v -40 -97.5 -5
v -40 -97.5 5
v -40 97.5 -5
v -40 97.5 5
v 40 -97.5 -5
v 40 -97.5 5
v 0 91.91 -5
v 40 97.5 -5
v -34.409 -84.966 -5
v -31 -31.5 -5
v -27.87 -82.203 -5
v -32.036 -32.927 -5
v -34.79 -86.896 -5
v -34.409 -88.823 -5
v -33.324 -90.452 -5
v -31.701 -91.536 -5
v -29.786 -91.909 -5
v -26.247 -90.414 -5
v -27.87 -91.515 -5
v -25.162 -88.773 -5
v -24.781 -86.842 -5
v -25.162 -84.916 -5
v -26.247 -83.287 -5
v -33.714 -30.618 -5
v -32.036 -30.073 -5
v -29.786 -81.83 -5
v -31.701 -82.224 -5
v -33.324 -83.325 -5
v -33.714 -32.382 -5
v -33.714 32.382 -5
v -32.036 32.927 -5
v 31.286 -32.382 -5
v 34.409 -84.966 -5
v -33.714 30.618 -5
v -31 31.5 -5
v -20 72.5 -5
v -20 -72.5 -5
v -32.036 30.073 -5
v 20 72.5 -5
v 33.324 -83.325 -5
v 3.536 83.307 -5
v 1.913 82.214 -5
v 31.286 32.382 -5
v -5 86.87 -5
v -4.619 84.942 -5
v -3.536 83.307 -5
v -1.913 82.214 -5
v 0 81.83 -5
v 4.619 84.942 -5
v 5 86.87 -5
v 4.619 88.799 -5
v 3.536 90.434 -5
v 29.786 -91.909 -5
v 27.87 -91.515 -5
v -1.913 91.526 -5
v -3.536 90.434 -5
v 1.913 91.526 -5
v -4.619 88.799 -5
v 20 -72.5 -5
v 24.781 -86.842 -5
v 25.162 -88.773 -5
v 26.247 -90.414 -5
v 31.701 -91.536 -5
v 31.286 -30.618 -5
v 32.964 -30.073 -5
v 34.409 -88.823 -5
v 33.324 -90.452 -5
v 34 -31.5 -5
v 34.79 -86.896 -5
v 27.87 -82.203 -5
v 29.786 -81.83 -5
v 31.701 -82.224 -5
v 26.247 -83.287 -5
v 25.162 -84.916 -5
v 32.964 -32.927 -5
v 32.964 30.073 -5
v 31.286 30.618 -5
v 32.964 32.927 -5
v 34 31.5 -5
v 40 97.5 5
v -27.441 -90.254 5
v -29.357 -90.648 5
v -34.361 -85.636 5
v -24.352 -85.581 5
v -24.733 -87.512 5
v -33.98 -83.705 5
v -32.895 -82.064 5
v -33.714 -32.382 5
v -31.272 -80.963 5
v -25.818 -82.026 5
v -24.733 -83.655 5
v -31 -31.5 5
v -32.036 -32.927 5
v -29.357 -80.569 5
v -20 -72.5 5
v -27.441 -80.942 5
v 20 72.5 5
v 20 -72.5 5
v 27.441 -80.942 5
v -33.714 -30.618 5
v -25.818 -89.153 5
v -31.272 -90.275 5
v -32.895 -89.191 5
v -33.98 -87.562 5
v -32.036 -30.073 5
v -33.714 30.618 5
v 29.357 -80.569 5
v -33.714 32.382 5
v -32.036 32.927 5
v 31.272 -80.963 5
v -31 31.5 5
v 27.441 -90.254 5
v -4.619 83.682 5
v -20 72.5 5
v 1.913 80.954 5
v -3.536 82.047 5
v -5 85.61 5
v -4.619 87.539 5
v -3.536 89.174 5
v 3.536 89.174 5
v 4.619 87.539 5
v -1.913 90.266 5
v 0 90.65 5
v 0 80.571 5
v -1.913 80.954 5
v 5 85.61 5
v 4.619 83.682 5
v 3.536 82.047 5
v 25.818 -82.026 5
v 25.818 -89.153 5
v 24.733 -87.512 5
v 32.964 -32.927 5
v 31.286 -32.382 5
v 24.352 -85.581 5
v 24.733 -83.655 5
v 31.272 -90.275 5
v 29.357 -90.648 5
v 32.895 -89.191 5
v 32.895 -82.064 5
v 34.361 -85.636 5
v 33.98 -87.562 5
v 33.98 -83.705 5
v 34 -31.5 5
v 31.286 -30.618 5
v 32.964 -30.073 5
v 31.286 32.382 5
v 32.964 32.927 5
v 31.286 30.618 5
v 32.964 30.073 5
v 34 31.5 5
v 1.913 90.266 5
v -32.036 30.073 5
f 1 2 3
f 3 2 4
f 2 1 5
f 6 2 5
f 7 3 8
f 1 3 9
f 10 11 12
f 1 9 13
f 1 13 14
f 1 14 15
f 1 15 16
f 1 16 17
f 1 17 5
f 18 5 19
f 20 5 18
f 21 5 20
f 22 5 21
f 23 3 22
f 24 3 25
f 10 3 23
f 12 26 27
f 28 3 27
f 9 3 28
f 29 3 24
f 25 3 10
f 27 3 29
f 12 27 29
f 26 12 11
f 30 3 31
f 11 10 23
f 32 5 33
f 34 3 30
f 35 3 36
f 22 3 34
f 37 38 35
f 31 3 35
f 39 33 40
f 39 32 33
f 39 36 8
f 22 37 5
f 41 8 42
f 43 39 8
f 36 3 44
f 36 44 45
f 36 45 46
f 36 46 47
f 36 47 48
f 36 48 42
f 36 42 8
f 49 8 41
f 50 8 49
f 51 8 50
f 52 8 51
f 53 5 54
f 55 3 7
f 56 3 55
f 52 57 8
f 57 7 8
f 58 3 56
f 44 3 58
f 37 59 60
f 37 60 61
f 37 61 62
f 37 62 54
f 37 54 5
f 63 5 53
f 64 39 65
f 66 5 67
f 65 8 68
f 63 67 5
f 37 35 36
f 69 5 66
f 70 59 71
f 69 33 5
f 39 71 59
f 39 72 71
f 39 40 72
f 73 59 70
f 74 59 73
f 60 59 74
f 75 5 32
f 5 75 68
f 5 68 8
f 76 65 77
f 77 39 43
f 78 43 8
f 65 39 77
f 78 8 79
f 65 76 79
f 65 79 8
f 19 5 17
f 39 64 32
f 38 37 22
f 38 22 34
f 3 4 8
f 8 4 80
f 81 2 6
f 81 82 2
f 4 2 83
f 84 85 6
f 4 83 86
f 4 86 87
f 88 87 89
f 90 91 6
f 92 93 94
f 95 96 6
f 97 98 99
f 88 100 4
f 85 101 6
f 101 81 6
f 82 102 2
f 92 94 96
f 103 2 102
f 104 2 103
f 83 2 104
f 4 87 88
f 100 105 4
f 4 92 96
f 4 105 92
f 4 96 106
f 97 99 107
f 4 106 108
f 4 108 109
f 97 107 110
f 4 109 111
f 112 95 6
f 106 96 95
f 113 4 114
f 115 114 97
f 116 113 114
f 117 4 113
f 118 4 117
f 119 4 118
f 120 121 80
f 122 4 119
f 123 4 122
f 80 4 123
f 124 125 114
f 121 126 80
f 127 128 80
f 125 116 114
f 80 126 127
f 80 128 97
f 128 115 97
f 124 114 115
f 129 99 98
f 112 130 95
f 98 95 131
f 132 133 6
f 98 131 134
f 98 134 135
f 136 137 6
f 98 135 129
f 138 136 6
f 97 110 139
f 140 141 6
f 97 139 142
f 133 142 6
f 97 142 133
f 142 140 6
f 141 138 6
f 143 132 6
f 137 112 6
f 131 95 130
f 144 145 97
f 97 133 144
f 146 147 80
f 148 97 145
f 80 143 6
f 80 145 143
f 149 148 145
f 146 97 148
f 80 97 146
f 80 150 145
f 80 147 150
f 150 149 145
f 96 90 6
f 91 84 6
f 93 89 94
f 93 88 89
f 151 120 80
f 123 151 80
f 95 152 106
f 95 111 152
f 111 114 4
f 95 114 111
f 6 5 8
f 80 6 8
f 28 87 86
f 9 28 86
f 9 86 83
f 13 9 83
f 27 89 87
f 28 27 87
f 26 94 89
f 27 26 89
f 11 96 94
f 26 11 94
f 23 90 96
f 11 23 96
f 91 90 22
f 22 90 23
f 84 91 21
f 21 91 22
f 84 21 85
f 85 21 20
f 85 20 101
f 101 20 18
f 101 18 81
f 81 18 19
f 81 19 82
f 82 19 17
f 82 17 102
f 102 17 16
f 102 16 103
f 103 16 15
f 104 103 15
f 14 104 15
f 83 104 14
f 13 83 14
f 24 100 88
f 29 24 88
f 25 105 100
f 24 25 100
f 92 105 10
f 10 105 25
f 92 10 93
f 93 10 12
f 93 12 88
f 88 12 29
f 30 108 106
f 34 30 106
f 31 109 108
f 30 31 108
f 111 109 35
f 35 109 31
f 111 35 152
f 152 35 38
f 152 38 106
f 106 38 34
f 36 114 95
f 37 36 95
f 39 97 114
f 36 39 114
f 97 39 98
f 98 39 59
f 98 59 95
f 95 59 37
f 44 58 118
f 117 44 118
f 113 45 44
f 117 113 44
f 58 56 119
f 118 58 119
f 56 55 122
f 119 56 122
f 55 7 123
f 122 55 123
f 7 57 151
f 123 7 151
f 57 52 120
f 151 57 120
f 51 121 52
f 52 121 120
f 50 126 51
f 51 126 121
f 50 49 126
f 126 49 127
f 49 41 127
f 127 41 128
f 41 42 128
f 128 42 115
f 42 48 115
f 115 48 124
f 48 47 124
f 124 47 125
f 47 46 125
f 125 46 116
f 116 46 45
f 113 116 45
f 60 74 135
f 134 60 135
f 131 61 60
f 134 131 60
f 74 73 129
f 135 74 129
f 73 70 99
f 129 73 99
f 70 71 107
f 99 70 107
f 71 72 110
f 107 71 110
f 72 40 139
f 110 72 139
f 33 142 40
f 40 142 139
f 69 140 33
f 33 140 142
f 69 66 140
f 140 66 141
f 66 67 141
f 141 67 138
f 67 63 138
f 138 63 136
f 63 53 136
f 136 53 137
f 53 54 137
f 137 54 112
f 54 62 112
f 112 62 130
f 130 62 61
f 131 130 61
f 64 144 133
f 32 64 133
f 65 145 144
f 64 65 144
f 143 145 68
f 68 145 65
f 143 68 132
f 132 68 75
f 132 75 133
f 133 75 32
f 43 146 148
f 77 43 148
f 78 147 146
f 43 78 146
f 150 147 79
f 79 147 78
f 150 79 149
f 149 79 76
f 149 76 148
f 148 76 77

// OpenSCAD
l_stab = 700;
d_stab = 10;

g_unten = 120;
h_unten = 350;

g_oben = 60;
h_oben = 175;

d_plate = 10;
d_wall = 5;

sc_r = 1.5;
sc_dx = 65;
sc_dy = 63;

phi = -asin( ((h_oben-h_unten)/2)/l_stab );
theta = -asin( ((g_oben-g_unten)/2)/l_stab );

echo(asin( ((h_oben-h_unten)/2)/l_stab ));

difference() {
	cube(size=[g_oben+d_stab+2*d_wall,h_oben+d_stab+2*d_wall,d_plate], center=true);
	translate([-g_oben/2,-h_oben/2,-d_plate])
	rotate([-phi,theta,0])
		cylinder(r=d_stab/2,h=l_stab);
	translate([g_oben/2,-h_oben/2,-d_plate])
	rotate([-phi,-theta,0])
		cylinder(r=d_stab/2,h=l_stab);
	translate([0,h_oben/2,-d_plate])
	rotate([phi,0,0])
		cylinder(r=d_stab/2,h=l_stab);

	cube(size=[g_oben-d_stab-2*d_wall,h_oben-2*d_stab-2*d_wall,d_plate], center=true);

	translate([-sc_dx/2,-sc_dy/2,-d_plate/2])
		cylinder(r=sc_r,h=d_plate);
	translate([sc_dx/2,-sc_dy/2,-d_plate/2])
		cylinder(r=sc_r,h=d_plate);
	translate([sc_dx/2,sc_dy/2,-d_plate/2])
		cylinder(r=sc_r,h=d_plate);
	translate([-sc_dx/2,sc_dy/2,-d_plate/2])
		cylinder(r=sc_r,h=d_plate);
}
